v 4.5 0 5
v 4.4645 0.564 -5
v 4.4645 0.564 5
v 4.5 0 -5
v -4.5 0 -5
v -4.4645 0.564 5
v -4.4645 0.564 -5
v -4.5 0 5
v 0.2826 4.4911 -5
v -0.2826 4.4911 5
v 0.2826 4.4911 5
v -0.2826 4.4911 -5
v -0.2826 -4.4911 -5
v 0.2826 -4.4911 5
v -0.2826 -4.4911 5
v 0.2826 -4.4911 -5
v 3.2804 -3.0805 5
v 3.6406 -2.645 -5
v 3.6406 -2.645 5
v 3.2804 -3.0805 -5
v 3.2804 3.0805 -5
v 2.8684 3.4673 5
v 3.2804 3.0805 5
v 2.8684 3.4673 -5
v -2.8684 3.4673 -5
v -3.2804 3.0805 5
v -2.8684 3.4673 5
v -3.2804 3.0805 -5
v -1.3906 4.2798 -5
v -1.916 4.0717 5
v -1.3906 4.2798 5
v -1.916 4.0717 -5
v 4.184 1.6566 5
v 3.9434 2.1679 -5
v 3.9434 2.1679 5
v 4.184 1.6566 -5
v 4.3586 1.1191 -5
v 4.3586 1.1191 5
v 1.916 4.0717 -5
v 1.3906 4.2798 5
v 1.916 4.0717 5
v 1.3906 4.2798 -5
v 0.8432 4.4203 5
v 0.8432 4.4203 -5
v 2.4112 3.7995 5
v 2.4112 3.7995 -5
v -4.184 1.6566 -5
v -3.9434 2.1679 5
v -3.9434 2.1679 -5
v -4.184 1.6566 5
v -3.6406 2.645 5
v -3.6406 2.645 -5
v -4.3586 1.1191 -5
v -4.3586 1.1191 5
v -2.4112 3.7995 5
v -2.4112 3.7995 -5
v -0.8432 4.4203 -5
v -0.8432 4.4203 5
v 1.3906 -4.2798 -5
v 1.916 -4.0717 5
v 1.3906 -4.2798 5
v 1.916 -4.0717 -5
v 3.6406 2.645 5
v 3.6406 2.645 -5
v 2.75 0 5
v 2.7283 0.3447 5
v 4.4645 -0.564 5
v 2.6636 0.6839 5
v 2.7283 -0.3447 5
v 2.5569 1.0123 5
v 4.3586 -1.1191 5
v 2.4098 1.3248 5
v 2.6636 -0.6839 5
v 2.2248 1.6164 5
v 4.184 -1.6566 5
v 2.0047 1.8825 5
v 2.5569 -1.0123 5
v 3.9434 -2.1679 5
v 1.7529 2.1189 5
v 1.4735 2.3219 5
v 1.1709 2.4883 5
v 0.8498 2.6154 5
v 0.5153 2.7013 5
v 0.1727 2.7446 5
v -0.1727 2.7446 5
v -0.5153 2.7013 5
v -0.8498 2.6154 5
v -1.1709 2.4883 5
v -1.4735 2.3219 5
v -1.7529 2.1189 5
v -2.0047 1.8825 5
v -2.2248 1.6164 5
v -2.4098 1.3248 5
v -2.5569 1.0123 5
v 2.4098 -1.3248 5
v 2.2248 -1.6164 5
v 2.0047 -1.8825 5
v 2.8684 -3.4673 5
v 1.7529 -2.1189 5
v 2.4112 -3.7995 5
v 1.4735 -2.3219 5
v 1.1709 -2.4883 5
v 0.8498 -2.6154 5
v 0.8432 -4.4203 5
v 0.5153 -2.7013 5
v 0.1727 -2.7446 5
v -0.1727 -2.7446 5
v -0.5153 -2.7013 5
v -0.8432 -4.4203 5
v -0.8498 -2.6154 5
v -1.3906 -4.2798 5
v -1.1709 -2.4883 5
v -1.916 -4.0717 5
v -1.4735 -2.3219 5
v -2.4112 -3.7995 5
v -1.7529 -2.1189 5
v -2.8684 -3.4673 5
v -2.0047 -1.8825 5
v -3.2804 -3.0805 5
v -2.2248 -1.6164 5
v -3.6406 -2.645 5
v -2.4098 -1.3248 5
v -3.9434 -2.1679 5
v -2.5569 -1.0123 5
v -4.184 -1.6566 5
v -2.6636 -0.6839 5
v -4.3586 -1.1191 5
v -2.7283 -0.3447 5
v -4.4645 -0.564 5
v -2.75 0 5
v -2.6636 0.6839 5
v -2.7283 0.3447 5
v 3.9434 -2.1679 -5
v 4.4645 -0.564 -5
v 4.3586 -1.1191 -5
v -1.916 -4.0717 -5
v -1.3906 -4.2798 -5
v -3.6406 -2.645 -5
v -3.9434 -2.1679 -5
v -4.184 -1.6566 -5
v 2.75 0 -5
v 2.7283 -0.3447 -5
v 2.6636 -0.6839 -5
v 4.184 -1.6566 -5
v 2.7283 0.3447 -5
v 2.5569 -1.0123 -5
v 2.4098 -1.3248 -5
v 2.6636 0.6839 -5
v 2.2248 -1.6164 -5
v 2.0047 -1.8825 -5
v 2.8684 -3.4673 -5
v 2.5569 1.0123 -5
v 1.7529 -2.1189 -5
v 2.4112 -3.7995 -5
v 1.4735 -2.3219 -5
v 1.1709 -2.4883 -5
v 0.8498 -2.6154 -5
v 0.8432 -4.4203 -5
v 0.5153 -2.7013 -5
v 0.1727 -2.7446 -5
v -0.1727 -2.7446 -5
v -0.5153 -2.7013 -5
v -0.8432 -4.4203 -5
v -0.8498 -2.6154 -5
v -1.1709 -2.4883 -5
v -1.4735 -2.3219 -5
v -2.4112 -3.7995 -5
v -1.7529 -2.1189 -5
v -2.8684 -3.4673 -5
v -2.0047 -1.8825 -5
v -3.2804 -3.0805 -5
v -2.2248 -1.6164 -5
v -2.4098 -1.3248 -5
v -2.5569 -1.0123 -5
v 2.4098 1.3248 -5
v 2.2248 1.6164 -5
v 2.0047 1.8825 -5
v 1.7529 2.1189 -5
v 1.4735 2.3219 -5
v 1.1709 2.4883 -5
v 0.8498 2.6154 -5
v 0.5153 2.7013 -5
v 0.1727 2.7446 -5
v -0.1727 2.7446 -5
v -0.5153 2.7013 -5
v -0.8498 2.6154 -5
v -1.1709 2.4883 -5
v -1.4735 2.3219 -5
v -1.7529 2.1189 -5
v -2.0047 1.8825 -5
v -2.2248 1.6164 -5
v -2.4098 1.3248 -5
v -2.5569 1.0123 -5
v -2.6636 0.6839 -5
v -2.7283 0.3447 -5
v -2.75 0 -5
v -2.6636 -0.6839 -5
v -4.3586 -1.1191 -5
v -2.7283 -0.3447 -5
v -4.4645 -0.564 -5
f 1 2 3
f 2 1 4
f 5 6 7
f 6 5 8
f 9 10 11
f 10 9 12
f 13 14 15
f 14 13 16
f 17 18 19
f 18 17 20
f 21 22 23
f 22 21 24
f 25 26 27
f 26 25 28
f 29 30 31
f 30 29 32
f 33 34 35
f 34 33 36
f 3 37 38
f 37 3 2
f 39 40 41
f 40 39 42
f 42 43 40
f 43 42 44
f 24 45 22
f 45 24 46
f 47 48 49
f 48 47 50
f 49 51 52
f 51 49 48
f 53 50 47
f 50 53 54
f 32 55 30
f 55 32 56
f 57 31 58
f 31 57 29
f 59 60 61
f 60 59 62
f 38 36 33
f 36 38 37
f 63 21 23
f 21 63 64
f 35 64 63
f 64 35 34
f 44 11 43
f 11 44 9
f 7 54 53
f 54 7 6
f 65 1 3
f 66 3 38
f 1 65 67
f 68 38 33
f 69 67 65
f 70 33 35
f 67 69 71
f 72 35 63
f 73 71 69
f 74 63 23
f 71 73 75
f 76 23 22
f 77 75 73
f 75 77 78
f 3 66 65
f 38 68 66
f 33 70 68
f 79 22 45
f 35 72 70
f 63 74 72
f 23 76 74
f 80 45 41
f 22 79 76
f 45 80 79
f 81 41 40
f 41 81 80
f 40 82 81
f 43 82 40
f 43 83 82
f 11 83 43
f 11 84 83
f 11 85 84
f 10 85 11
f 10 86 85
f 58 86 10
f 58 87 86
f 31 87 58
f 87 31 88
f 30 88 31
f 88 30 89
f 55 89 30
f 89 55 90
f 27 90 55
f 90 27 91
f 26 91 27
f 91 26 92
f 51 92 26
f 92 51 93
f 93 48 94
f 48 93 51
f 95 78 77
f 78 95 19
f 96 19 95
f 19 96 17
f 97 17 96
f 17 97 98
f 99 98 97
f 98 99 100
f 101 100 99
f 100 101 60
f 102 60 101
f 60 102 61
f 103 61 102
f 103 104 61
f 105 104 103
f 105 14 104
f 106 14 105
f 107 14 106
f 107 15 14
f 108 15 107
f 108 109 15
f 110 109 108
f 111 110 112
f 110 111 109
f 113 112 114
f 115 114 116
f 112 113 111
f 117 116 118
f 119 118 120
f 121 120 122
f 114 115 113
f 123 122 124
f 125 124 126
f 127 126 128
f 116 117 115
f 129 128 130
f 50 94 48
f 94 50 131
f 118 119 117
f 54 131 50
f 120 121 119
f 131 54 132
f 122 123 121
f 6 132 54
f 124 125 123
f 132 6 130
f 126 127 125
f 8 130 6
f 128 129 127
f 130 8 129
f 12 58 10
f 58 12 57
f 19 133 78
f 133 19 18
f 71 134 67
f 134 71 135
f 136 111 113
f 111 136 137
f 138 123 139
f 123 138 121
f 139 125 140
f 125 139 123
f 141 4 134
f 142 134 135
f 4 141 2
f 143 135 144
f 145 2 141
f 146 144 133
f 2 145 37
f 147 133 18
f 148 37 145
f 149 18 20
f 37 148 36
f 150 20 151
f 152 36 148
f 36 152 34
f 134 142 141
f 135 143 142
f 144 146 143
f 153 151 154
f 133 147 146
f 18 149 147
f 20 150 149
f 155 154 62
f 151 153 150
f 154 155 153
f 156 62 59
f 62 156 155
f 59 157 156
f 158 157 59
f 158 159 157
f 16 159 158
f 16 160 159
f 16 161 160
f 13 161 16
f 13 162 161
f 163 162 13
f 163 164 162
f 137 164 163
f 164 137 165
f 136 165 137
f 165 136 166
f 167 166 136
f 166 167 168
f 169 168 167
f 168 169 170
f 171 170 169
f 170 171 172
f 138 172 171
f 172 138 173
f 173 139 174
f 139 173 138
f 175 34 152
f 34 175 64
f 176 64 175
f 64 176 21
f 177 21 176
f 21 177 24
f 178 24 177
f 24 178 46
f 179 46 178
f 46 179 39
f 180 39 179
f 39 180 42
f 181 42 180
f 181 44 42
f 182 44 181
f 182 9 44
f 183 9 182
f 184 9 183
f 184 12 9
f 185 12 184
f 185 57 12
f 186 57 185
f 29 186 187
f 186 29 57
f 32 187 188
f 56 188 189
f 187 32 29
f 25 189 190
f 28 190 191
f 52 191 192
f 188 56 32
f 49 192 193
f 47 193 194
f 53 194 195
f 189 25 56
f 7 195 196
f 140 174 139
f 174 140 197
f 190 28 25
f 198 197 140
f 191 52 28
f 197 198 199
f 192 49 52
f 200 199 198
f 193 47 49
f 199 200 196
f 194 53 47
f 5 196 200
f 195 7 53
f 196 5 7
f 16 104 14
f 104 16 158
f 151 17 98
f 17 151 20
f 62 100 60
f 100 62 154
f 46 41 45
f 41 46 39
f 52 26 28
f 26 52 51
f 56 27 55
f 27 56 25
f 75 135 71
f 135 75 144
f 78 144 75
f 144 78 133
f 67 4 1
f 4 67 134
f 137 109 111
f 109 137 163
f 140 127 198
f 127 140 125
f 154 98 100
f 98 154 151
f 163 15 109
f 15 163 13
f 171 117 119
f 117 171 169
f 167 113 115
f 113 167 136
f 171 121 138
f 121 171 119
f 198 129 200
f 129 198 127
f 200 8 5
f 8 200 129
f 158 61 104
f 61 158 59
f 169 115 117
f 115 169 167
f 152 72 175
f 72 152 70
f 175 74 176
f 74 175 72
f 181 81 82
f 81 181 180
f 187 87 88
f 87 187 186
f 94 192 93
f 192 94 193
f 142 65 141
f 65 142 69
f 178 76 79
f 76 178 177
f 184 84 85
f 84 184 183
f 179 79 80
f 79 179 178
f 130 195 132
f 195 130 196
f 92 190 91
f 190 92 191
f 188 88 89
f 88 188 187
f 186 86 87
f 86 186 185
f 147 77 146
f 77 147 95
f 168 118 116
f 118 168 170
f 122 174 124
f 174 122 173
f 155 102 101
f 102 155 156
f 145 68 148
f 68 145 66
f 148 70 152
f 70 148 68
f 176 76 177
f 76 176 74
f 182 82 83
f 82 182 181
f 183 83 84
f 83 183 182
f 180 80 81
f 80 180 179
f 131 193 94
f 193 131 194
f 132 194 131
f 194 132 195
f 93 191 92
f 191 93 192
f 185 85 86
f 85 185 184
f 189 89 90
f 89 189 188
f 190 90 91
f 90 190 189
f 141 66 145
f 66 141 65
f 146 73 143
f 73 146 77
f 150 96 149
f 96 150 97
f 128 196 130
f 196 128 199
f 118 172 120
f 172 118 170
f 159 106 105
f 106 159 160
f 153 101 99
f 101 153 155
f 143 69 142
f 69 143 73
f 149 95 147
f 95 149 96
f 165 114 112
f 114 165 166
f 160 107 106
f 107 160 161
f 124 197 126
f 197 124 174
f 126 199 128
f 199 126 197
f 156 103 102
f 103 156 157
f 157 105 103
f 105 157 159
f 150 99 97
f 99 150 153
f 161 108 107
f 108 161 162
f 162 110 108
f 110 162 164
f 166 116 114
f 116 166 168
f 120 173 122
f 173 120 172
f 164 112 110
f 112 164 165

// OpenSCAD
$fn = 50;


difference() {
	union() {
		translate(v = [0, 0, -5.0000000000]) {
			cylinder(h = 10, r = 4.5000000000);
		}
	}
	union() {
		translate(v = [0, 0, -100.0000000000]) {
			cylinder(h = 200, r = 2.7500000000);
		}
	}
}
